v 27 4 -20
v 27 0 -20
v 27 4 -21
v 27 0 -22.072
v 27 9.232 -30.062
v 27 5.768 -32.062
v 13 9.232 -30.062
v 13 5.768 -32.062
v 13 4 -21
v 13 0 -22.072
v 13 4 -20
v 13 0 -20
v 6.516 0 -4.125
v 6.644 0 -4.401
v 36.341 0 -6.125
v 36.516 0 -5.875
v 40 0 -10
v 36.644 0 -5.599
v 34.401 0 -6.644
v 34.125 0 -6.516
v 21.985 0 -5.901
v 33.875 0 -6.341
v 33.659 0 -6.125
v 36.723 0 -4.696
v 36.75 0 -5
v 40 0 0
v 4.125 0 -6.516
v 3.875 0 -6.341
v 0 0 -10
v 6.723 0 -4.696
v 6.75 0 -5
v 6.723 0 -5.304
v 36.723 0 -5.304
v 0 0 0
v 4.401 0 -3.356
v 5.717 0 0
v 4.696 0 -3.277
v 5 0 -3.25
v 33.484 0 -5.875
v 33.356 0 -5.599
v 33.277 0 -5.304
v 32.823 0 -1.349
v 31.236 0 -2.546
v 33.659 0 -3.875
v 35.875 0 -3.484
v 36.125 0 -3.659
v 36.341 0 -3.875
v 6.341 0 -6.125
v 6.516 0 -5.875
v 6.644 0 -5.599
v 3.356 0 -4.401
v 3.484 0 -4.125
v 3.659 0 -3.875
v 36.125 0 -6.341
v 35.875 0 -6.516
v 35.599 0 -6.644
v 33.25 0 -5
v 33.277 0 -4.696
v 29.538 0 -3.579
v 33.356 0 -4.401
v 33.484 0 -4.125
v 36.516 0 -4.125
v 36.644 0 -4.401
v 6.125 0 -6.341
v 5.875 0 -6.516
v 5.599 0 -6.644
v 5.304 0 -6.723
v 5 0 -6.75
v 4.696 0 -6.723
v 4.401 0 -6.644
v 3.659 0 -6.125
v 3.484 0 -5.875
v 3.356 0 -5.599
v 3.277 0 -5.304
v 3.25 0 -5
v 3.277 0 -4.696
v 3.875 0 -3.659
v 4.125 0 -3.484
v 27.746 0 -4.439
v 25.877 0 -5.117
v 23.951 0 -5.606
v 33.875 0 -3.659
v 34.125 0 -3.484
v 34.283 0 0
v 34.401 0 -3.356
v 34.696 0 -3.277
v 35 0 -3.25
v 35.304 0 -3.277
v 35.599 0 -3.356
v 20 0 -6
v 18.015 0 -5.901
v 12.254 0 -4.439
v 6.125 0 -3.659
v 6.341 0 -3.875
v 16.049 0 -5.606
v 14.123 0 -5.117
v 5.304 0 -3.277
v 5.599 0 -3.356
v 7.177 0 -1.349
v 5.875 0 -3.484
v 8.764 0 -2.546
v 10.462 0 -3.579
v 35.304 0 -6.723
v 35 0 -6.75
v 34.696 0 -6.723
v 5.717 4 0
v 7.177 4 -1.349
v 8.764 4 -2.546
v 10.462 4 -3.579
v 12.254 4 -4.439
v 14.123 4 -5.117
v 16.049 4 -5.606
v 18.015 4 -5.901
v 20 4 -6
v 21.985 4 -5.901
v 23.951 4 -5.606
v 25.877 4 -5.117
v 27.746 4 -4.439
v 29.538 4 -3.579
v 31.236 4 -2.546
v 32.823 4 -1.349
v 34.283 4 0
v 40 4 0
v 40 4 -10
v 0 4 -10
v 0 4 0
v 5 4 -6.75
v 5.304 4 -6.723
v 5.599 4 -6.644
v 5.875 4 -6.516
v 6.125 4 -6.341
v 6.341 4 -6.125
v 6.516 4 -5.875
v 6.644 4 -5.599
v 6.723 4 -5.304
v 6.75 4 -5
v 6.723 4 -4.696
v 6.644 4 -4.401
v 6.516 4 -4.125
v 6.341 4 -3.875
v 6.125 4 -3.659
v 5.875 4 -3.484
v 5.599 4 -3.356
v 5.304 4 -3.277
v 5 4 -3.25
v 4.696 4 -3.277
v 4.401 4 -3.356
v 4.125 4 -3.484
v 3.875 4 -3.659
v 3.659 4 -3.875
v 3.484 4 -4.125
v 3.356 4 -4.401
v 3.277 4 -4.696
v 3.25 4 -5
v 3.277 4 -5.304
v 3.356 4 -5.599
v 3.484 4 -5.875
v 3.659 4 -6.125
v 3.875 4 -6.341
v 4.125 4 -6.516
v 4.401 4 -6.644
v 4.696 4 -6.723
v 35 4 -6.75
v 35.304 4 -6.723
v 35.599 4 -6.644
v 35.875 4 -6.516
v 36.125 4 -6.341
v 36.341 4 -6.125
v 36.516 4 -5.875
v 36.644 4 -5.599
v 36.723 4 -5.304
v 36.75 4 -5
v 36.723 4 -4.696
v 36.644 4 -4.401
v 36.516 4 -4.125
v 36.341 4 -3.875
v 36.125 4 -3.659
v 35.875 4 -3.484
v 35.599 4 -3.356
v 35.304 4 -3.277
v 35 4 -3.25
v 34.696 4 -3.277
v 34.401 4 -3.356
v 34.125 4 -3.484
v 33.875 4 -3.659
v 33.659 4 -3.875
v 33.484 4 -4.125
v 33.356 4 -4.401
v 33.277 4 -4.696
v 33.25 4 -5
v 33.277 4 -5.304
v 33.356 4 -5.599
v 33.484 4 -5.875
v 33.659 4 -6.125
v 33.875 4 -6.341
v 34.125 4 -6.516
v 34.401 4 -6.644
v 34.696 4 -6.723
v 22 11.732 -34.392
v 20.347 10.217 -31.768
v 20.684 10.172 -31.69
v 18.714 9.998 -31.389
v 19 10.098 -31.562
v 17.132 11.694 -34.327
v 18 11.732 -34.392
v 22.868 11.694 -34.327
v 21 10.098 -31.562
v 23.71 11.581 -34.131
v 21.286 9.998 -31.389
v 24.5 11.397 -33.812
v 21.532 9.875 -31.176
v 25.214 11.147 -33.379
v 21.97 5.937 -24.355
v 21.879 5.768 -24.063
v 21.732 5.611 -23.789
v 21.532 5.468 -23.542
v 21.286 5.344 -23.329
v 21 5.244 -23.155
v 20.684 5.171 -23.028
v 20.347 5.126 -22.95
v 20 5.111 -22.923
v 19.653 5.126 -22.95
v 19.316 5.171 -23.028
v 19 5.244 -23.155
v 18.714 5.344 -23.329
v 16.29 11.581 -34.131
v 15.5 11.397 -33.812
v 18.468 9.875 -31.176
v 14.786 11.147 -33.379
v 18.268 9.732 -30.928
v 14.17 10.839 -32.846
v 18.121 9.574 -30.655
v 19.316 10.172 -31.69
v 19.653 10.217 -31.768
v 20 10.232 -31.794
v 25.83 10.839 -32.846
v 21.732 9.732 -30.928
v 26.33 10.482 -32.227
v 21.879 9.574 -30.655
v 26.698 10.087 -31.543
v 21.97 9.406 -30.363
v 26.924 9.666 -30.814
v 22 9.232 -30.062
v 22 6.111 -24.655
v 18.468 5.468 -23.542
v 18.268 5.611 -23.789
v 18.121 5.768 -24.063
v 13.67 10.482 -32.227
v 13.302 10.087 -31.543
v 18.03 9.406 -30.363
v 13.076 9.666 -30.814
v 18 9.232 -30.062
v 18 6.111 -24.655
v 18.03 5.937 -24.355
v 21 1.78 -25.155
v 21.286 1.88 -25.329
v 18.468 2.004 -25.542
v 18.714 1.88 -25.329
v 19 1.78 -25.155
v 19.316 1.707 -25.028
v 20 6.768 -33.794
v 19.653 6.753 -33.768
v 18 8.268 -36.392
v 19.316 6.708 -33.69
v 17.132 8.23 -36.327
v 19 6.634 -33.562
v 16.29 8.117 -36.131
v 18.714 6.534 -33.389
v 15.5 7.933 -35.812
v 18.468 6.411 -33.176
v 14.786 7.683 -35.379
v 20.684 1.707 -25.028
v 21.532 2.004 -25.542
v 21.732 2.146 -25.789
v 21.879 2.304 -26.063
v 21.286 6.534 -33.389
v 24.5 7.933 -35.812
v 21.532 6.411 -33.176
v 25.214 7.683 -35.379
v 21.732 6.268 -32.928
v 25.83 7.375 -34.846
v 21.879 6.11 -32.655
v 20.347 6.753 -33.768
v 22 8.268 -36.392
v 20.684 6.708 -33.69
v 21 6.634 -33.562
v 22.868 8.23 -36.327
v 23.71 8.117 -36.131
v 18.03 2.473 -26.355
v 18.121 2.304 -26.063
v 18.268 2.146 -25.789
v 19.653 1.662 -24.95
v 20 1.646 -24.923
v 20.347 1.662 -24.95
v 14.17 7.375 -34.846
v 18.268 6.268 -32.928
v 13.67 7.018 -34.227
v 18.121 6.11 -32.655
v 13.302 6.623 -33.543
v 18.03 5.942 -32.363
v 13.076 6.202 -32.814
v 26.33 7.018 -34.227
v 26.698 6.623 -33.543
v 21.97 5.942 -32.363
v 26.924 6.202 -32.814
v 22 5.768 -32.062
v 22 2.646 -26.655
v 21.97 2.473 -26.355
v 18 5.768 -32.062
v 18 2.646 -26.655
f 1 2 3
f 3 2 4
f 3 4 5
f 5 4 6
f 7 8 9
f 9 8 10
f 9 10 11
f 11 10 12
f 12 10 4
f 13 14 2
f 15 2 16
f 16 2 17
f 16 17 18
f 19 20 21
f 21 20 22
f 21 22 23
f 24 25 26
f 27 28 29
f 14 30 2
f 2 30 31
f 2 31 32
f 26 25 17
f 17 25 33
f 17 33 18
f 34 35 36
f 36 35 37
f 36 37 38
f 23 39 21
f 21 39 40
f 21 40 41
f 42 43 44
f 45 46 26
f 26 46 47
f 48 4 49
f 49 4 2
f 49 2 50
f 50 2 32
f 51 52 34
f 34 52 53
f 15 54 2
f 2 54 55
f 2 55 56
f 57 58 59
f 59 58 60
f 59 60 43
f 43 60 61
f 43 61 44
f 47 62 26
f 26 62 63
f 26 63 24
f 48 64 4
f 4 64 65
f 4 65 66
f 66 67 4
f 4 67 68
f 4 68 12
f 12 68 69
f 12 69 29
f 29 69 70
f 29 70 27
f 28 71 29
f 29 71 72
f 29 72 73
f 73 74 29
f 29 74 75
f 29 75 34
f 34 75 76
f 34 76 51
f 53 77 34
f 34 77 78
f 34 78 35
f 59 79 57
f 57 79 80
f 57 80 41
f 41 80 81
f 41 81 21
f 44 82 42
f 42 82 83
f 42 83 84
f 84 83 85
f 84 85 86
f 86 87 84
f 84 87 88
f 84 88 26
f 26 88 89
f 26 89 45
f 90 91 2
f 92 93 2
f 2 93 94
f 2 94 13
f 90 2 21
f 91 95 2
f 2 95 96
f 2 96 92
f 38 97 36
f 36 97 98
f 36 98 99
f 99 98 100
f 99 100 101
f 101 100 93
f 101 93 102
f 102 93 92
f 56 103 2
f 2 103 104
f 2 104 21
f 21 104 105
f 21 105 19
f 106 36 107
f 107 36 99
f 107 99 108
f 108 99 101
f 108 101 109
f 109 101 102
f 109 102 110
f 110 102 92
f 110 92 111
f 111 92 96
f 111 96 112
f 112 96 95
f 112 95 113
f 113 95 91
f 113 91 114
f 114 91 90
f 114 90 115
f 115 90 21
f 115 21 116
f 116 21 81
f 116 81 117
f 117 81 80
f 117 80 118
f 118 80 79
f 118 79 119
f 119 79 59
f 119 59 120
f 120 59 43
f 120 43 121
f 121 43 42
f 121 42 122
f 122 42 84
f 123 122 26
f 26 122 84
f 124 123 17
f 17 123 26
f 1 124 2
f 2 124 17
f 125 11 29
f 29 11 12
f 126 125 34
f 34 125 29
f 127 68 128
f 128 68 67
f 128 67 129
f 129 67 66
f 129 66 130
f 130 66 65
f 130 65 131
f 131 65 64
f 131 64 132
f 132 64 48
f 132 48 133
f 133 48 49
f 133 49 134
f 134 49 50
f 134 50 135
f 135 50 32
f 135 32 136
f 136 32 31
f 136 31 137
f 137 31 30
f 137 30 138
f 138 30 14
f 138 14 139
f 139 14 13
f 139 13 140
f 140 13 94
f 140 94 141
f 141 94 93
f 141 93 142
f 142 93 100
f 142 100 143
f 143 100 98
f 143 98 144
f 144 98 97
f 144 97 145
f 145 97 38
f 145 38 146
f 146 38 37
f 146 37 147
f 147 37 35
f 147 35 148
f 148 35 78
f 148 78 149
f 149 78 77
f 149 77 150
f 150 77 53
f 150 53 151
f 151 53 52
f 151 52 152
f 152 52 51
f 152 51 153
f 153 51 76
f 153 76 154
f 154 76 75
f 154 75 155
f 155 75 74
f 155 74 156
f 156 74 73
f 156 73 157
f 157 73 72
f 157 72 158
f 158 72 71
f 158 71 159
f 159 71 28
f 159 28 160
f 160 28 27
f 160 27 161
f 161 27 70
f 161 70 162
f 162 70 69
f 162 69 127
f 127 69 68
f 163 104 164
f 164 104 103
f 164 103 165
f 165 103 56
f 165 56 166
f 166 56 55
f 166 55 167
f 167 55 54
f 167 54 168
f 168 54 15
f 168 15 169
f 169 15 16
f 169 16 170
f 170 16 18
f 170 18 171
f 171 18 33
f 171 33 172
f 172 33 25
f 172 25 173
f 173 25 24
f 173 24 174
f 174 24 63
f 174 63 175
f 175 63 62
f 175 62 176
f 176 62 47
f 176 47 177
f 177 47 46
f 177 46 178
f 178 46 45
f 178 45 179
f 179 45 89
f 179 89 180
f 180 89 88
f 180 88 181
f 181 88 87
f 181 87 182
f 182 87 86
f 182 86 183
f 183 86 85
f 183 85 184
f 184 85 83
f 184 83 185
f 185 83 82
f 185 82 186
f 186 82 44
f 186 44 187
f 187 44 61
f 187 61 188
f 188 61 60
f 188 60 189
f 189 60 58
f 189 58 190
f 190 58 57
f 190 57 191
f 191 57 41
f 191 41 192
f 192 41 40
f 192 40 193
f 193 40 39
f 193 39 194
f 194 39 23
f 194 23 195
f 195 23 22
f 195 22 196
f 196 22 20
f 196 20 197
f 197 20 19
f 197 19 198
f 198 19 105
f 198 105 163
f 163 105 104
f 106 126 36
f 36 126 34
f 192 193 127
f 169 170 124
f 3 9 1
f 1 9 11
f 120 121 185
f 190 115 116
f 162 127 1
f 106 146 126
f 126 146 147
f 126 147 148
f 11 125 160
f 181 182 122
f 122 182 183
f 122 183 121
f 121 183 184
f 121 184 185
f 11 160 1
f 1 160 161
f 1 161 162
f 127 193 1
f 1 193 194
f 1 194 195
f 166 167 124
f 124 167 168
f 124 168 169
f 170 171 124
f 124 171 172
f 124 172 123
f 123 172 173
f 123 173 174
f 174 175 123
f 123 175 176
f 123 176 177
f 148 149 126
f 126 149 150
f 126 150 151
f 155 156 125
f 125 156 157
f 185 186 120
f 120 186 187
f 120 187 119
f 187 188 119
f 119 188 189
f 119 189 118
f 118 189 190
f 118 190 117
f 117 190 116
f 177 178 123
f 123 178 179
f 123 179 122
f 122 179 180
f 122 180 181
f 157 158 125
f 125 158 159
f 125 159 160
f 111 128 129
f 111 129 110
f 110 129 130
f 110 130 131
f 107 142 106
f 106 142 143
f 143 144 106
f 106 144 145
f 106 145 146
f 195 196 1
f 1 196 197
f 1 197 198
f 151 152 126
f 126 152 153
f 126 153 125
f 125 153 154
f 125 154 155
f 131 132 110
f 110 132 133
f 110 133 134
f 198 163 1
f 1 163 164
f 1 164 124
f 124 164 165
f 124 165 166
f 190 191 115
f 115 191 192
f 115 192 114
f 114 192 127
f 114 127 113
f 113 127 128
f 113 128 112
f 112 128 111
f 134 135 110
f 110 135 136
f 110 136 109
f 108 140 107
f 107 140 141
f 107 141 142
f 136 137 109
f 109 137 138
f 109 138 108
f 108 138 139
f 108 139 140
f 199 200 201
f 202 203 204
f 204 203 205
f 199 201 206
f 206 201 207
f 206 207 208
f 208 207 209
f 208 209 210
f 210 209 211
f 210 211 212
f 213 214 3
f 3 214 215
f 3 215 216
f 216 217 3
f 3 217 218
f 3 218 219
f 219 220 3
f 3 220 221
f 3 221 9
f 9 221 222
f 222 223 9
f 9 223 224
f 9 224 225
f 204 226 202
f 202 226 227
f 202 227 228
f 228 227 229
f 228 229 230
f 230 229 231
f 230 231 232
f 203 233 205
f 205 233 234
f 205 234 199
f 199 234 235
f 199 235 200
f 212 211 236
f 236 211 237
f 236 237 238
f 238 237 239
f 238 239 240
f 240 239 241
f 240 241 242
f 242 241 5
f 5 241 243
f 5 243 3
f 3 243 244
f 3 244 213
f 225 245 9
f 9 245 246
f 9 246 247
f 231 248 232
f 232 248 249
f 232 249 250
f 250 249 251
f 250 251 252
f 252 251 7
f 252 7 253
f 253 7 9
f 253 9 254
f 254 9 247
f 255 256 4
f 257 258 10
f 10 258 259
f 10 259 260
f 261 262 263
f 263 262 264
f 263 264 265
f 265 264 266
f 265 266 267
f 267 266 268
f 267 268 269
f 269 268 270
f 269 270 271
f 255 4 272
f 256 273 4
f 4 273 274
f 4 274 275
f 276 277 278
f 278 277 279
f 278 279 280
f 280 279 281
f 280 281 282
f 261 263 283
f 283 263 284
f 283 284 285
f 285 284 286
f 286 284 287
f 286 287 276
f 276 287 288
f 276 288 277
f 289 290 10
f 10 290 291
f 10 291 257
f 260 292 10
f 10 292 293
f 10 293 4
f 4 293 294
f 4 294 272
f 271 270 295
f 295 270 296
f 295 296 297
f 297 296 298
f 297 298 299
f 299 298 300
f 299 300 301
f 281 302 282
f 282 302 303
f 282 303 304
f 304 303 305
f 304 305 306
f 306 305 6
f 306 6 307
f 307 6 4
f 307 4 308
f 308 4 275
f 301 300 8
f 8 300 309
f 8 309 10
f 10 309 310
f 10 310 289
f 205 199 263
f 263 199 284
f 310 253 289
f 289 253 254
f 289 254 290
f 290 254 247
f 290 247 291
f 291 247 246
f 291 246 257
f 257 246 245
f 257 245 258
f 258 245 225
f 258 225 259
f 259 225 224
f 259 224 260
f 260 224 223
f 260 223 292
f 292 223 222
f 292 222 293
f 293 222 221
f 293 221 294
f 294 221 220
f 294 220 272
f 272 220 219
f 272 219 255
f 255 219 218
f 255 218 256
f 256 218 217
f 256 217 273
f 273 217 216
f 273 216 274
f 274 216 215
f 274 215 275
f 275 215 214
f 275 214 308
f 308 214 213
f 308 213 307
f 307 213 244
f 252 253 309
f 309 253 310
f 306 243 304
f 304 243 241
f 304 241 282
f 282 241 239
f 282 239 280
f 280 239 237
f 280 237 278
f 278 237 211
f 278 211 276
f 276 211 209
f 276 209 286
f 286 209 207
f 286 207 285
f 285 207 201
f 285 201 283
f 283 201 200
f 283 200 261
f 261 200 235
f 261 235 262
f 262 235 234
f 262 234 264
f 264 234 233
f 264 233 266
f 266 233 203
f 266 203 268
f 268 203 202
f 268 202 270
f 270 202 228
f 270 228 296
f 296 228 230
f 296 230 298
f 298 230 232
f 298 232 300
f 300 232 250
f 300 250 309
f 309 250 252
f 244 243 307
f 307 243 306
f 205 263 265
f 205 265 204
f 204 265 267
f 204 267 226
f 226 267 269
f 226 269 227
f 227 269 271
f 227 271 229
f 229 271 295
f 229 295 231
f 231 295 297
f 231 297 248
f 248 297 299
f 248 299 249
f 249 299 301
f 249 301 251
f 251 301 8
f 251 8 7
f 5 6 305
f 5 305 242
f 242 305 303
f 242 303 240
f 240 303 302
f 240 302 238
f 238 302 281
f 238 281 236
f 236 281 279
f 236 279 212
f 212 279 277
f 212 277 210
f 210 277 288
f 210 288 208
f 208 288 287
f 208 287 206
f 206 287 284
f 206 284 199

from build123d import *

# Parameters (mm, degrees)
SKETCH1_R                = 1.75
BOSS_EXTRUDE1_DEPTH      = 4
BOSS_EXTRUDE2_DEPTH      = 4
BOSS_EXTRUDE2_DEPTH_BACK = 12
SKETCH4_W                = 14
SKETCH4_H                = 4
SKETCH5_W                = 16
SKETCH5_H                = 3.464101615
CUT_EXTRUDE1_DEPTH       = 14
CUT_EXTRUDE2_DEPTH       = 14
FILLET1_R                = 5


with BuildPart() as part:
    # Sketch1 → Boss-Extrude1 (new body)
    with BuildSketch(Plane(origin=(0, 0, 0), x_dir=(1, 0, 0), z_dir=(0, 1, 0))):
        with BuildLine():
            Line((40, 10), (27, 20))
            Line((27, 20), (27, 25))
            Line((27, 25), (13, 25))
            Line((13, 25), (13, 20))
            Line((13, 20), (0, 10))
            Line((0, 10), (0, 0))
            Line((0, 0), (5.717143143, 0))
            ThreePointArc((5.717143143, 0), (20, 6), (34.282856857, 0))
            Line((34.282856857, 0), (40, 0))
            Line((40, 0), (40, 10))
        make_face()
        with Locations((5, 5)):
            Circle(SKETCH1_R, mode=Mode.SUBTRACT)
        with Locations((35, 5)):
            Circle(SKETCH1_R, mode=Mode.SUBTRACT)
    extrude(amount=BOSS_EXTRUDE1_DEPTH)

    # Sketch4 → Boss-Extrude2 (add, two sides: drawn at the far end of the back side and taken through both)
    with BuildSketch(Plane(origin=(0, 11.825317547, -20.482050808), x_dir=(1, 0, 0), z_dir=(0, -0.5000000000000041, 0.8660254037844364)).offset(-BOSS_EXTRUDE2_DEPTH_BACK)):
        with Locations((20, -9.035898385)):
            Rectangle(SKETCH4_W, SKETCH4_H)
    extrude(amount=BOSS_EXTRUDE2_DEPTH + BOSS_EXTRUDE2_DEPTH_BACK)

    # Sketch5 → Cut-Extrude1 (cut)
    with BuildSketch(Plane(origin=(0, 11.825317547, -20.482050808), x_dir=(1, 0, 0), z_dir=(0, -0.5000000000000041, 0.8660254037844364))):
        with Locations((21, -12.767949193)):
            Rectangle(SKETCH5_W, SKETCH5_H)
    extrude(amount=CUT_EXTRUDE1_DEPTH, mode=Mode.SUBTRACT)

    # Sketch6 → Cut-Extrude2 (cut)
    with BuildSketch(Plane(origin=(0, -6.09326674, -3.517949192), x_dir=(1, 0, 0), z_dir=(0, 0.8660254037844364, 0.5000000000000041))):
        with BuildLine():
            Line((18, 24.407537572), (18, 30.650635095))
            ThreePointArc((18, 30.650635095), (20, 32.650635095), (22, 30.650635095))
            Line((22, 30.650635095), (22, 24.407537572))
            ThreePointArc((22, 24.407537572), (20, 22.407537572), (18, 24.407537572))
        make_face()
    extrude(amount=-CUT_EXTRUDE2_DEPTH, mode=Mode.SUBTRACT)

    # Fillet1
    fillet1_edges = [part.edges().sort_by_distance(p)[0] for p in [
        (13, 10, -35.392304845),
        (27, 10, -35.392304845),
    ]]
    fillet(fillet1_edges, radius=FILLET1_R)


solid = part.part
